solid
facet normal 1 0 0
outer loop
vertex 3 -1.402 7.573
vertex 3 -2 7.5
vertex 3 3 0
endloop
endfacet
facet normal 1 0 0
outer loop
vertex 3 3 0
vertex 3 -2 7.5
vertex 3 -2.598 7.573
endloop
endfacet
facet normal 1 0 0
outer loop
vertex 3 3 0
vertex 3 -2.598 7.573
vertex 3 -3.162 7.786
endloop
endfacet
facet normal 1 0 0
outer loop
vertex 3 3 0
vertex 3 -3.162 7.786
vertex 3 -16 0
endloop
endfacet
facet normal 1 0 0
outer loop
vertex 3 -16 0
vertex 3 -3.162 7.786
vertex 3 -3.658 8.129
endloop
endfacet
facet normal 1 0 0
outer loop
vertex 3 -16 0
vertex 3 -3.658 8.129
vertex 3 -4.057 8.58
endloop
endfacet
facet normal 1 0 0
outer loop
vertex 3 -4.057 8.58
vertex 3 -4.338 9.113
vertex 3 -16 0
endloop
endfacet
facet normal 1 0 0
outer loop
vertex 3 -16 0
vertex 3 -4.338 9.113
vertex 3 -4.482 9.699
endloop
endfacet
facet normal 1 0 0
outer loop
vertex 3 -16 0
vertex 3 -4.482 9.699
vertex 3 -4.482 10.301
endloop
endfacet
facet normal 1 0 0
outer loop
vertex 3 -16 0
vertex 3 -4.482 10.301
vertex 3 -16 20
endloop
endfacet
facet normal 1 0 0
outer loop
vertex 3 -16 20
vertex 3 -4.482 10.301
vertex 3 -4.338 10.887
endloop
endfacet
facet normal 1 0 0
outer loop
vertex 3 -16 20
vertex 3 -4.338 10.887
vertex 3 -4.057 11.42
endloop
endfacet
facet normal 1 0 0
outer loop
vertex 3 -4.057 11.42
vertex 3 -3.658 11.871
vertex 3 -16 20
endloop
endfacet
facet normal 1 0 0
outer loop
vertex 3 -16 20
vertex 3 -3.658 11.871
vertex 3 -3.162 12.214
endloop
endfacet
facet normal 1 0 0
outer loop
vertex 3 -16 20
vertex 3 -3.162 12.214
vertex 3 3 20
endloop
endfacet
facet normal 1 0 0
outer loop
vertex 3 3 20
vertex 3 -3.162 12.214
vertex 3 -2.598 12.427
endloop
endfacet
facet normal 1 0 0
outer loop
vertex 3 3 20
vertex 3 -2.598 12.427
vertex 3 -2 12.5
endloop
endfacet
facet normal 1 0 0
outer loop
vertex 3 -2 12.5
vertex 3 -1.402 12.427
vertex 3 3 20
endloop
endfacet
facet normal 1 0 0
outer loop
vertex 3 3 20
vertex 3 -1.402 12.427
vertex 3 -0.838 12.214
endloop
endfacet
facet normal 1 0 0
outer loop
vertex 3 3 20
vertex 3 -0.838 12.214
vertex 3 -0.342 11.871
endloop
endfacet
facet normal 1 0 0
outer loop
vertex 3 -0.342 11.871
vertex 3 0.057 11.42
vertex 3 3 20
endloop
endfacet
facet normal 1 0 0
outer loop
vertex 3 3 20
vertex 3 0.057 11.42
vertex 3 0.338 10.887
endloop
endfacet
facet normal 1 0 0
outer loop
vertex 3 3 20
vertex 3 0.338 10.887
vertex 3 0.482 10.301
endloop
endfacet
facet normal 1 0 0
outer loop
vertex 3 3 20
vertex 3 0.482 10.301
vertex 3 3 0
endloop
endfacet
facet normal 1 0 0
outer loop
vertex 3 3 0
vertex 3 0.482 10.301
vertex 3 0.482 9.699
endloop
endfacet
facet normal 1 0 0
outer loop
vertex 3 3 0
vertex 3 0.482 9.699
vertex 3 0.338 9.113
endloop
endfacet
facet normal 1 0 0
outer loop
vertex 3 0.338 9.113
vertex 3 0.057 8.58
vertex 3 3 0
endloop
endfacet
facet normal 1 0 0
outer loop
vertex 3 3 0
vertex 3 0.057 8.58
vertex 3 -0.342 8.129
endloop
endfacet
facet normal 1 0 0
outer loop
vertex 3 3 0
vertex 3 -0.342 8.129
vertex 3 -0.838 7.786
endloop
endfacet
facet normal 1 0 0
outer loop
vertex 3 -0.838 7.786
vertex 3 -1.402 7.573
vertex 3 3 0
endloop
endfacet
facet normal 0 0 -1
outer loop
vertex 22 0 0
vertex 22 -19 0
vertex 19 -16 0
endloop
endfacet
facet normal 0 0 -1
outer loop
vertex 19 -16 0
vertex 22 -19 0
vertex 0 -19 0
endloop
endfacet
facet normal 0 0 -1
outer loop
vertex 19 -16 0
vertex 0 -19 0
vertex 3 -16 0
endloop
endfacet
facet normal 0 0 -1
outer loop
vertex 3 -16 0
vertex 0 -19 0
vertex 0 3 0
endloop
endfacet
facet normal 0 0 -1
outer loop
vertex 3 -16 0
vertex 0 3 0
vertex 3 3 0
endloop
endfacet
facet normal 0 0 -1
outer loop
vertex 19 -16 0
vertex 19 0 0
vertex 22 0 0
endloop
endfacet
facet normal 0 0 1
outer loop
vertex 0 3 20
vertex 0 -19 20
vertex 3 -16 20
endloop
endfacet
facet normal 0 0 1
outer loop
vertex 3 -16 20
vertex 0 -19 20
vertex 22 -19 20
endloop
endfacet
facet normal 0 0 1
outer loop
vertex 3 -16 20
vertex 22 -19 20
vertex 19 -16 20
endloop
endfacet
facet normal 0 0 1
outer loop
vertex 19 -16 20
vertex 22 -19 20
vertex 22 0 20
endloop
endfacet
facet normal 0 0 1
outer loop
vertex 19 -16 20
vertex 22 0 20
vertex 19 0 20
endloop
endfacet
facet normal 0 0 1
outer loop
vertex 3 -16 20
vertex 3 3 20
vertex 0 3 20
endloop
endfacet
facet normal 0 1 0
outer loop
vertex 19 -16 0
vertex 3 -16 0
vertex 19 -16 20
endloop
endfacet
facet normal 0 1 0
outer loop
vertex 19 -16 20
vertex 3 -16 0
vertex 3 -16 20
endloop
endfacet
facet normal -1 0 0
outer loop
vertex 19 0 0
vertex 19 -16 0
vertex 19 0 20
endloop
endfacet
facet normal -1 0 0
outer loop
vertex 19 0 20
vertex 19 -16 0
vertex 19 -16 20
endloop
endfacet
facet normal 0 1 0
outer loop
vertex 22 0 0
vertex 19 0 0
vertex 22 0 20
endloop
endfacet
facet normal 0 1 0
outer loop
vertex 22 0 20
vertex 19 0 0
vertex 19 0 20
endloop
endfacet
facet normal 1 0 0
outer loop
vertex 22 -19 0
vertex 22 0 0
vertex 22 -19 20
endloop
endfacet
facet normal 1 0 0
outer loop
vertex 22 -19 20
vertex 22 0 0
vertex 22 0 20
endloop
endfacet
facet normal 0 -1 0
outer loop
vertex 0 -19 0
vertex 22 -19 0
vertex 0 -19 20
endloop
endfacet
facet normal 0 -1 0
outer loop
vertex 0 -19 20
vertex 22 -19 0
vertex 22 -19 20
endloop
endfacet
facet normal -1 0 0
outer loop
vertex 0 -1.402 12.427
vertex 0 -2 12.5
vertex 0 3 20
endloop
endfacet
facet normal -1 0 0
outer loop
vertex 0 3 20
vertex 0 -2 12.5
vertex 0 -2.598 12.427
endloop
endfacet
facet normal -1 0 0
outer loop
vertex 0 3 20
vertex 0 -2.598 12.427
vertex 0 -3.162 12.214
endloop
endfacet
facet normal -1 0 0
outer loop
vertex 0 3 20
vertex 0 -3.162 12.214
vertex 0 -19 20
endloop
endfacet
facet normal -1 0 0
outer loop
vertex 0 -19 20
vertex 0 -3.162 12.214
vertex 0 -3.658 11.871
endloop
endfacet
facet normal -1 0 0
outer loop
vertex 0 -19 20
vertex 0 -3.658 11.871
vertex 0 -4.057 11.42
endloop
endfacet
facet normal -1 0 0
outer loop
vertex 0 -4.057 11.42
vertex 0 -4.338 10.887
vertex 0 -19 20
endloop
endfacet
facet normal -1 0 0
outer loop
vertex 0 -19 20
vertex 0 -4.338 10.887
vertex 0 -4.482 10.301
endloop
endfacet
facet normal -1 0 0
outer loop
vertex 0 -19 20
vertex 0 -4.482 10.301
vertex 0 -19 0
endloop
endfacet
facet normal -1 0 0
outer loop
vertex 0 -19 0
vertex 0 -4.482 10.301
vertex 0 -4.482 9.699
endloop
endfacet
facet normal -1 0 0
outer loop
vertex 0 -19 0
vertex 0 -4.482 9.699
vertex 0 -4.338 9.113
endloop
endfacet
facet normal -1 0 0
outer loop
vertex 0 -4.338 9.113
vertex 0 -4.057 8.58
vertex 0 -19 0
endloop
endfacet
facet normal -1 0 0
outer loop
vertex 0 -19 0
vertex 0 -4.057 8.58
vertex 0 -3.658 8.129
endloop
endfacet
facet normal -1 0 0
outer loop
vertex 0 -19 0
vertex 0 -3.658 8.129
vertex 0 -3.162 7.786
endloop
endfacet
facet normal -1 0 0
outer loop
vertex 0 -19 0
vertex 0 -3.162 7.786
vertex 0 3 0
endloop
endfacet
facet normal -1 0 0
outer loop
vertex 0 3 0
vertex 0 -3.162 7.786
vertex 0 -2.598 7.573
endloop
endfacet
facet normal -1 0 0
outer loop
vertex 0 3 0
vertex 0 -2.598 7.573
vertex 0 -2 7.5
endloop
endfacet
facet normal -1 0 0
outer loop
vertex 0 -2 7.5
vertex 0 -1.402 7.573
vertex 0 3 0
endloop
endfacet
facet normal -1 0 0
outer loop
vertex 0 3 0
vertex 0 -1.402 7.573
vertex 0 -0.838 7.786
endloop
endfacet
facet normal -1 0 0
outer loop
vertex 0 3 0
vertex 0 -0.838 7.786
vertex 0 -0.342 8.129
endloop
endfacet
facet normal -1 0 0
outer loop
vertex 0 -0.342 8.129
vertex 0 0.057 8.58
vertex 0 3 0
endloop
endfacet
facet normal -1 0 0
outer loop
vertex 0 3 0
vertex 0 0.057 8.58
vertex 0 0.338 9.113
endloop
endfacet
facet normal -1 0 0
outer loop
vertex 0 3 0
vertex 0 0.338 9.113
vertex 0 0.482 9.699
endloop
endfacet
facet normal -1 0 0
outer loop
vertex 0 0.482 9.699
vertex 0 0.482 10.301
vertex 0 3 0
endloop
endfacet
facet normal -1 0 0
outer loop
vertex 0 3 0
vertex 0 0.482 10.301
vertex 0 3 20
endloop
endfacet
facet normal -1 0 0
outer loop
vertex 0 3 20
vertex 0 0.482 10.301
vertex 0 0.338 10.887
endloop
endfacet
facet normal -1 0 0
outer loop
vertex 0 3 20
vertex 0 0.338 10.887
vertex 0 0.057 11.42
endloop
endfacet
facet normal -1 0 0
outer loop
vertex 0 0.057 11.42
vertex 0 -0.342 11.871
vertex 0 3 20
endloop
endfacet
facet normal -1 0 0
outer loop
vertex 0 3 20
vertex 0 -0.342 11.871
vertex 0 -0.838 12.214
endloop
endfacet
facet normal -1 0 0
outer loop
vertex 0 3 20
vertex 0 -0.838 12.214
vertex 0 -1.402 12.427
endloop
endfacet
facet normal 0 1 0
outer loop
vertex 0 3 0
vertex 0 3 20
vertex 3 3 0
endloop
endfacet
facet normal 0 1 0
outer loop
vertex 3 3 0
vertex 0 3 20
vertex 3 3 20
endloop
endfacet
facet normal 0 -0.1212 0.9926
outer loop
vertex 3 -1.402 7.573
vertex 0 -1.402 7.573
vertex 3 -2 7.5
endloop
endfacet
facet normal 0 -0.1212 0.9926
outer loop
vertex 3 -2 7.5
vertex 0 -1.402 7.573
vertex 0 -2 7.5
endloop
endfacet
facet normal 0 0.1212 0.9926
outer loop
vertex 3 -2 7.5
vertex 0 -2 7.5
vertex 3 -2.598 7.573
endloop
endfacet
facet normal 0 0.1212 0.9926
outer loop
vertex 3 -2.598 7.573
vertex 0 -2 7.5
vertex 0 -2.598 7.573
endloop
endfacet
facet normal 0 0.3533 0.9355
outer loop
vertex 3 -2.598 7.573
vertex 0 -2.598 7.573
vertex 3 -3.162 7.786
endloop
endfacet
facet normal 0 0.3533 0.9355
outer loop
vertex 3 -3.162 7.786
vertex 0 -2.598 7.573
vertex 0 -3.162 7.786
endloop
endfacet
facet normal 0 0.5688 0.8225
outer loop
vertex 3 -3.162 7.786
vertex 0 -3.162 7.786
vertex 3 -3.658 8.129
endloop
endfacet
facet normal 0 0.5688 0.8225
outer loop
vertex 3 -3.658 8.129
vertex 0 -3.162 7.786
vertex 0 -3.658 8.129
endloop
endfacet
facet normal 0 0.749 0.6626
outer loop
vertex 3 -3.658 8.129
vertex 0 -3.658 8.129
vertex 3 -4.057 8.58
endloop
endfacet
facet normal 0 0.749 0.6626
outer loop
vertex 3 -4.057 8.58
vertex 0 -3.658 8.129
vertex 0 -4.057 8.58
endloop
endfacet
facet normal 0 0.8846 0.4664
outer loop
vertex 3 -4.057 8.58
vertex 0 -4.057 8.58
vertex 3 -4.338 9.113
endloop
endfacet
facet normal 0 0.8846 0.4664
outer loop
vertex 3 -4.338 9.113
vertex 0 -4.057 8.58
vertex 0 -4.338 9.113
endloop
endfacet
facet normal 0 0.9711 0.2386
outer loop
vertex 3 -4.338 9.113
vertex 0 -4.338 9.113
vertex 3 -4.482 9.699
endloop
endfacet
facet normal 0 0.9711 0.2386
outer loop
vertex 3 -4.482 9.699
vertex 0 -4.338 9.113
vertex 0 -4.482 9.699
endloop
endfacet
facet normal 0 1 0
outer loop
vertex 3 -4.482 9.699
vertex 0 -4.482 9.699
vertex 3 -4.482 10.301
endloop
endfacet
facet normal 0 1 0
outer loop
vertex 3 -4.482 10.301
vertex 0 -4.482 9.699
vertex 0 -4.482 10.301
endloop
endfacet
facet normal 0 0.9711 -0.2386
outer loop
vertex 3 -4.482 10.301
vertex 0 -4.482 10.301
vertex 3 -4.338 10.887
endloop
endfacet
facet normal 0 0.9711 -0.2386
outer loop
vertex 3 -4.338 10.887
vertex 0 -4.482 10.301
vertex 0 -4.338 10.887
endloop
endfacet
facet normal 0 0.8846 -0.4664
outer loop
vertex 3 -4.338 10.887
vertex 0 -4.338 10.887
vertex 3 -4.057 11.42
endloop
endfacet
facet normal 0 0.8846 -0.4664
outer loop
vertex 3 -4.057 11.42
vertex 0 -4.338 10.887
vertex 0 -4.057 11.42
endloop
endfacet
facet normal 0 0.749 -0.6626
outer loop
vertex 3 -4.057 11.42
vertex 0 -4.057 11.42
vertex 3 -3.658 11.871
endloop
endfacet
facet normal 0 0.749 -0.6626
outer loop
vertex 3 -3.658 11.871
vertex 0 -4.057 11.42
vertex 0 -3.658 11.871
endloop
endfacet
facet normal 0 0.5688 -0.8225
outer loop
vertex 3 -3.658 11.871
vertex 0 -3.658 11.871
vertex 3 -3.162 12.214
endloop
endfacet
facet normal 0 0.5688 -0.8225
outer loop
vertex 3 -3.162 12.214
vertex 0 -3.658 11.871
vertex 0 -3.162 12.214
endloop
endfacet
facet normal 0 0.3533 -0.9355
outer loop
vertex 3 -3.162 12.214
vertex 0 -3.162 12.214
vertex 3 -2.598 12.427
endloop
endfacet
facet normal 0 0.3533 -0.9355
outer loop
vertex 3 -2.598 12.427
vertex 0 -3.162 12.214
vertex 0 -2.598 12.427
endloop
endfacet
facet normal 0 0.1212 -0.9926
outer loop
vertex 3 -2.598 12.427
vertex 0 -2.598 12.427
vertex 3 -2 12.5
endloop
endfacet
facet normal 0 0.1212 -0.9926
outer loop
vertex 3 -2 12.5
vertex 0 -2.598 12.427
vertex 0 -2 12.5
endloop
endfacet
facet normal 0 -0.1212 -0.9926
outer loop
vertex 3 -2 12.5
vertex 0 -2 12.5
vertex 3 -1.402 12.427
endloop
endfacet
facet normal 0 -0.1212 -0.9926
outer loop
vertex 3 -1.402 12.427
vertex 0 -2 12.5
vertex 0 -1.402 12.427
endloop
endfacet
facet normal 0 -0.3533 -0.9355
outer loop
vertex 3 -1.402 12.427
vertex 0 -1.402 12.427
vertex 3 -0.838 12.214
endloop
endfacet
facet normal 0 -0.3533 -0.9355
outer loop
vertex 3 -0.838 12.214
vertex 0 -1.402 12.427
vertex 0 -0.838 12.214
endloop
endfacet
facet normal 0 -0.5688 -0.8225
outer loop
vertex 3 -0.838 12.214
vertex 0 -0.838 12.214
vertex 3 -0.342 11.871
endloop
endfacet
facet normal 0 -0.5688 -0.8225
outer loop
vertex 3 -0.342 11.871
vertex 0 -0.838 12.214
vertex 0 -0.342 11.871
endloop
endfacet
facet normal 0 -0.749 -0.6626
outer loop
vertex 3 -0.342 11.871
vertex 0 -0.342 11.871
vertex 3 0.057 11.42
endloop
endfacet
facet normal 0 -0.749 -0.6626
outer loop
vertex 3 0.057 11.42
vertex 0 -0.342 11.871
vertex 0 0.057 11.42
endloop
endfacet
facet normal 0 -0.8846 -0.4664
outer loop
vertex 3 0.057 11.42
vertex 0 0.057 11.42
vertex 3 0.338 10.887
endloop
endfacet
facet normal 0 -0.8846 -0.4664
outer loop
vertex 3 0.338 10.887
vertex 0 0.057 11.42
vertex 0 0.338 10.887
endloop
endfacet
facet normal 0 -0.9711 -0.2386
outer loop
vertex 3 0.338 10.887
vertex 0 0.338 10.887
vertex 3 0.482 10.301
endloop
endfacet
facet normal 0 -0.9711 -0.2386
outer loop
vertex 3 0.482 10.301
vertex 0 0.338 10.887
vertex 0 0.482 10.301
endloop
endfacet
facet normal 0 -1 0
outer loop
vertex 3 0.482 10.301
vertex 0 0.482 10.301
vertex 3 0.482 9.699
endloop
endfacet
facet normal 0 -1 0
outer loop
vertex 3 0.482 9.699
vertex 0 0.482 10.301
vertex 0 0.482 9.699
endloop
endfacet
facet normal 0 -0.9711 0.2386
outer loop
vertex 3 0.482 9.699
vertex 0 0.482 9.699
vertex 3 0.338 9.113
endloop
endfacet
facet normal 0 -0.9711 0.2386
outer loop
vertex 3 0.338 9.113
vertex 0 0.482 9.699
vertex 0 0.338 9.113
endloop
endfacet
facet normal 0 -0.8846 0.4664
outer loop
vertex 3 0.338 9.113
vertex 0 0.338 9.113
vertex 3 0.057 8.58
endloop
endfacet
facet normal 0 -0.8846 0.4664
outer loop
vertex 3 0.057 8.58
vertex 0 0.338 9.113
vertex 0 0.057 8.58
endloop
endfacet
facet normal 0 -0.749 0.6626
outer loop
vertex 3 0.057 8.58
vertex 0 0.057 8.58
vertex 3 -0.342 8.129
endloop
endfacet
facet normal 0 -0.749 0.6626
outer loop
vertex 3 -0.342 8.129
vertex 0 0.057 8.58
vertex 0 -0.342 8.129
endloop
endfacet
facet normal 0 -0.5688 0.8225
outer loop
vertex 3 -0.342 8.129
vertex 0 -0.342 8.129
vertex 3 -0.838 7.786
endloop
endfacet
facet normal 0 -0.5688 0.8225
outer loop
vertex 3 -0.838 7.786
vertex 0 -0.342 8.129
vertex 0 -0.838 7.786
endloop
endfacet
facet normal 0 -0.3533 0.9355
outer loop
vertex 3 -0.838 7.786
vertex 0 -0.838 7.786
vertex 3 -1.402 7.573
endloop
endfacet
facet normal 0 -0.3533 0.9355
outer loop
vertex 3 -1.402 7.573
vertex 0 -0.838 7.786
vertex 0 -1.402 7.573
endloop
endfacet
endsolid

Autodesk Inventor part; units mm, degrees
ref_plane "YZ Plane" through (0, 0, 0) normal (1, 0, 0) x (0, 1, 0)
ref_plane "XZ Plane" through (0, 0, 0) normal (0, 1, 0) x (-1, 0, 0)
ref_plane "XY Plane" through (0, 0, 0) normal (0, 0, 1) x (1, 0, 0)
sketch "Sketch1" plane through (0, 0, 0) normal (0, 0, 1) x (1, 0, 0)
  line L0 (0, 0) -> (22, 0)
  line L1 (22, 0) -> (22, -19)
  line L2 (22, -19) -> (0, -19)
  line L3 (0, -19) -> (0, 0)
  line L4 (3, 0) -> (19, 0)
  line L5 (19, 0) -> (19, -16)
  line L6 (19, -16) -> (3, -16)
  line L7 (3, -16) -> (3, 0)
  dimension "d0" = 22
  dimension "d1" = 19
  dimension "d2" = 3
  dimension "d3" = 3
  dimension "d4" = 3
extrude "Extrusion1" add sketch "Sketch1" along normal blind 20 contours L0 L7 L6 L5 L1 L2 L3
sketch "Sketch2" plane through (0, -19, 0) normal (-1, 0, 0) x (0, 0, 1)
  line L0 (0, 19) -> (20, 19) projected
  line L1 (0, 19) -> (20, 19)
  line L2 (20, 19) -> (20, 22)
  line L3 (20, 22) -> (0, 22)
  line L4 (0, 22) -> (0, 19)
  dimension "d7" = 3
extrude "Extrusion2" add sketch "Sketch2" against normal blind 3
sketch "Sketch3" plane through (0, -19, 0) normal (-1, 0, 0) x (0, 0, 1)
  line L0 (0, 22) -> (0, 0) projected
  line L1 (20, 22) -> (0, 22) projected
  circle A0 centre (10, 17) radius 2.5
  point P0 (0, 19)
  dimension "d10" = 10
  dimension "d11" = 5
  dimension "d12" = 5
extrude "Extrusion3" cut sketch "Sketch3" against normal blind 5
equation "\"d3\" = d2"
equation "\"d4\" = d2"
properties part number "LED strip mount v01"
